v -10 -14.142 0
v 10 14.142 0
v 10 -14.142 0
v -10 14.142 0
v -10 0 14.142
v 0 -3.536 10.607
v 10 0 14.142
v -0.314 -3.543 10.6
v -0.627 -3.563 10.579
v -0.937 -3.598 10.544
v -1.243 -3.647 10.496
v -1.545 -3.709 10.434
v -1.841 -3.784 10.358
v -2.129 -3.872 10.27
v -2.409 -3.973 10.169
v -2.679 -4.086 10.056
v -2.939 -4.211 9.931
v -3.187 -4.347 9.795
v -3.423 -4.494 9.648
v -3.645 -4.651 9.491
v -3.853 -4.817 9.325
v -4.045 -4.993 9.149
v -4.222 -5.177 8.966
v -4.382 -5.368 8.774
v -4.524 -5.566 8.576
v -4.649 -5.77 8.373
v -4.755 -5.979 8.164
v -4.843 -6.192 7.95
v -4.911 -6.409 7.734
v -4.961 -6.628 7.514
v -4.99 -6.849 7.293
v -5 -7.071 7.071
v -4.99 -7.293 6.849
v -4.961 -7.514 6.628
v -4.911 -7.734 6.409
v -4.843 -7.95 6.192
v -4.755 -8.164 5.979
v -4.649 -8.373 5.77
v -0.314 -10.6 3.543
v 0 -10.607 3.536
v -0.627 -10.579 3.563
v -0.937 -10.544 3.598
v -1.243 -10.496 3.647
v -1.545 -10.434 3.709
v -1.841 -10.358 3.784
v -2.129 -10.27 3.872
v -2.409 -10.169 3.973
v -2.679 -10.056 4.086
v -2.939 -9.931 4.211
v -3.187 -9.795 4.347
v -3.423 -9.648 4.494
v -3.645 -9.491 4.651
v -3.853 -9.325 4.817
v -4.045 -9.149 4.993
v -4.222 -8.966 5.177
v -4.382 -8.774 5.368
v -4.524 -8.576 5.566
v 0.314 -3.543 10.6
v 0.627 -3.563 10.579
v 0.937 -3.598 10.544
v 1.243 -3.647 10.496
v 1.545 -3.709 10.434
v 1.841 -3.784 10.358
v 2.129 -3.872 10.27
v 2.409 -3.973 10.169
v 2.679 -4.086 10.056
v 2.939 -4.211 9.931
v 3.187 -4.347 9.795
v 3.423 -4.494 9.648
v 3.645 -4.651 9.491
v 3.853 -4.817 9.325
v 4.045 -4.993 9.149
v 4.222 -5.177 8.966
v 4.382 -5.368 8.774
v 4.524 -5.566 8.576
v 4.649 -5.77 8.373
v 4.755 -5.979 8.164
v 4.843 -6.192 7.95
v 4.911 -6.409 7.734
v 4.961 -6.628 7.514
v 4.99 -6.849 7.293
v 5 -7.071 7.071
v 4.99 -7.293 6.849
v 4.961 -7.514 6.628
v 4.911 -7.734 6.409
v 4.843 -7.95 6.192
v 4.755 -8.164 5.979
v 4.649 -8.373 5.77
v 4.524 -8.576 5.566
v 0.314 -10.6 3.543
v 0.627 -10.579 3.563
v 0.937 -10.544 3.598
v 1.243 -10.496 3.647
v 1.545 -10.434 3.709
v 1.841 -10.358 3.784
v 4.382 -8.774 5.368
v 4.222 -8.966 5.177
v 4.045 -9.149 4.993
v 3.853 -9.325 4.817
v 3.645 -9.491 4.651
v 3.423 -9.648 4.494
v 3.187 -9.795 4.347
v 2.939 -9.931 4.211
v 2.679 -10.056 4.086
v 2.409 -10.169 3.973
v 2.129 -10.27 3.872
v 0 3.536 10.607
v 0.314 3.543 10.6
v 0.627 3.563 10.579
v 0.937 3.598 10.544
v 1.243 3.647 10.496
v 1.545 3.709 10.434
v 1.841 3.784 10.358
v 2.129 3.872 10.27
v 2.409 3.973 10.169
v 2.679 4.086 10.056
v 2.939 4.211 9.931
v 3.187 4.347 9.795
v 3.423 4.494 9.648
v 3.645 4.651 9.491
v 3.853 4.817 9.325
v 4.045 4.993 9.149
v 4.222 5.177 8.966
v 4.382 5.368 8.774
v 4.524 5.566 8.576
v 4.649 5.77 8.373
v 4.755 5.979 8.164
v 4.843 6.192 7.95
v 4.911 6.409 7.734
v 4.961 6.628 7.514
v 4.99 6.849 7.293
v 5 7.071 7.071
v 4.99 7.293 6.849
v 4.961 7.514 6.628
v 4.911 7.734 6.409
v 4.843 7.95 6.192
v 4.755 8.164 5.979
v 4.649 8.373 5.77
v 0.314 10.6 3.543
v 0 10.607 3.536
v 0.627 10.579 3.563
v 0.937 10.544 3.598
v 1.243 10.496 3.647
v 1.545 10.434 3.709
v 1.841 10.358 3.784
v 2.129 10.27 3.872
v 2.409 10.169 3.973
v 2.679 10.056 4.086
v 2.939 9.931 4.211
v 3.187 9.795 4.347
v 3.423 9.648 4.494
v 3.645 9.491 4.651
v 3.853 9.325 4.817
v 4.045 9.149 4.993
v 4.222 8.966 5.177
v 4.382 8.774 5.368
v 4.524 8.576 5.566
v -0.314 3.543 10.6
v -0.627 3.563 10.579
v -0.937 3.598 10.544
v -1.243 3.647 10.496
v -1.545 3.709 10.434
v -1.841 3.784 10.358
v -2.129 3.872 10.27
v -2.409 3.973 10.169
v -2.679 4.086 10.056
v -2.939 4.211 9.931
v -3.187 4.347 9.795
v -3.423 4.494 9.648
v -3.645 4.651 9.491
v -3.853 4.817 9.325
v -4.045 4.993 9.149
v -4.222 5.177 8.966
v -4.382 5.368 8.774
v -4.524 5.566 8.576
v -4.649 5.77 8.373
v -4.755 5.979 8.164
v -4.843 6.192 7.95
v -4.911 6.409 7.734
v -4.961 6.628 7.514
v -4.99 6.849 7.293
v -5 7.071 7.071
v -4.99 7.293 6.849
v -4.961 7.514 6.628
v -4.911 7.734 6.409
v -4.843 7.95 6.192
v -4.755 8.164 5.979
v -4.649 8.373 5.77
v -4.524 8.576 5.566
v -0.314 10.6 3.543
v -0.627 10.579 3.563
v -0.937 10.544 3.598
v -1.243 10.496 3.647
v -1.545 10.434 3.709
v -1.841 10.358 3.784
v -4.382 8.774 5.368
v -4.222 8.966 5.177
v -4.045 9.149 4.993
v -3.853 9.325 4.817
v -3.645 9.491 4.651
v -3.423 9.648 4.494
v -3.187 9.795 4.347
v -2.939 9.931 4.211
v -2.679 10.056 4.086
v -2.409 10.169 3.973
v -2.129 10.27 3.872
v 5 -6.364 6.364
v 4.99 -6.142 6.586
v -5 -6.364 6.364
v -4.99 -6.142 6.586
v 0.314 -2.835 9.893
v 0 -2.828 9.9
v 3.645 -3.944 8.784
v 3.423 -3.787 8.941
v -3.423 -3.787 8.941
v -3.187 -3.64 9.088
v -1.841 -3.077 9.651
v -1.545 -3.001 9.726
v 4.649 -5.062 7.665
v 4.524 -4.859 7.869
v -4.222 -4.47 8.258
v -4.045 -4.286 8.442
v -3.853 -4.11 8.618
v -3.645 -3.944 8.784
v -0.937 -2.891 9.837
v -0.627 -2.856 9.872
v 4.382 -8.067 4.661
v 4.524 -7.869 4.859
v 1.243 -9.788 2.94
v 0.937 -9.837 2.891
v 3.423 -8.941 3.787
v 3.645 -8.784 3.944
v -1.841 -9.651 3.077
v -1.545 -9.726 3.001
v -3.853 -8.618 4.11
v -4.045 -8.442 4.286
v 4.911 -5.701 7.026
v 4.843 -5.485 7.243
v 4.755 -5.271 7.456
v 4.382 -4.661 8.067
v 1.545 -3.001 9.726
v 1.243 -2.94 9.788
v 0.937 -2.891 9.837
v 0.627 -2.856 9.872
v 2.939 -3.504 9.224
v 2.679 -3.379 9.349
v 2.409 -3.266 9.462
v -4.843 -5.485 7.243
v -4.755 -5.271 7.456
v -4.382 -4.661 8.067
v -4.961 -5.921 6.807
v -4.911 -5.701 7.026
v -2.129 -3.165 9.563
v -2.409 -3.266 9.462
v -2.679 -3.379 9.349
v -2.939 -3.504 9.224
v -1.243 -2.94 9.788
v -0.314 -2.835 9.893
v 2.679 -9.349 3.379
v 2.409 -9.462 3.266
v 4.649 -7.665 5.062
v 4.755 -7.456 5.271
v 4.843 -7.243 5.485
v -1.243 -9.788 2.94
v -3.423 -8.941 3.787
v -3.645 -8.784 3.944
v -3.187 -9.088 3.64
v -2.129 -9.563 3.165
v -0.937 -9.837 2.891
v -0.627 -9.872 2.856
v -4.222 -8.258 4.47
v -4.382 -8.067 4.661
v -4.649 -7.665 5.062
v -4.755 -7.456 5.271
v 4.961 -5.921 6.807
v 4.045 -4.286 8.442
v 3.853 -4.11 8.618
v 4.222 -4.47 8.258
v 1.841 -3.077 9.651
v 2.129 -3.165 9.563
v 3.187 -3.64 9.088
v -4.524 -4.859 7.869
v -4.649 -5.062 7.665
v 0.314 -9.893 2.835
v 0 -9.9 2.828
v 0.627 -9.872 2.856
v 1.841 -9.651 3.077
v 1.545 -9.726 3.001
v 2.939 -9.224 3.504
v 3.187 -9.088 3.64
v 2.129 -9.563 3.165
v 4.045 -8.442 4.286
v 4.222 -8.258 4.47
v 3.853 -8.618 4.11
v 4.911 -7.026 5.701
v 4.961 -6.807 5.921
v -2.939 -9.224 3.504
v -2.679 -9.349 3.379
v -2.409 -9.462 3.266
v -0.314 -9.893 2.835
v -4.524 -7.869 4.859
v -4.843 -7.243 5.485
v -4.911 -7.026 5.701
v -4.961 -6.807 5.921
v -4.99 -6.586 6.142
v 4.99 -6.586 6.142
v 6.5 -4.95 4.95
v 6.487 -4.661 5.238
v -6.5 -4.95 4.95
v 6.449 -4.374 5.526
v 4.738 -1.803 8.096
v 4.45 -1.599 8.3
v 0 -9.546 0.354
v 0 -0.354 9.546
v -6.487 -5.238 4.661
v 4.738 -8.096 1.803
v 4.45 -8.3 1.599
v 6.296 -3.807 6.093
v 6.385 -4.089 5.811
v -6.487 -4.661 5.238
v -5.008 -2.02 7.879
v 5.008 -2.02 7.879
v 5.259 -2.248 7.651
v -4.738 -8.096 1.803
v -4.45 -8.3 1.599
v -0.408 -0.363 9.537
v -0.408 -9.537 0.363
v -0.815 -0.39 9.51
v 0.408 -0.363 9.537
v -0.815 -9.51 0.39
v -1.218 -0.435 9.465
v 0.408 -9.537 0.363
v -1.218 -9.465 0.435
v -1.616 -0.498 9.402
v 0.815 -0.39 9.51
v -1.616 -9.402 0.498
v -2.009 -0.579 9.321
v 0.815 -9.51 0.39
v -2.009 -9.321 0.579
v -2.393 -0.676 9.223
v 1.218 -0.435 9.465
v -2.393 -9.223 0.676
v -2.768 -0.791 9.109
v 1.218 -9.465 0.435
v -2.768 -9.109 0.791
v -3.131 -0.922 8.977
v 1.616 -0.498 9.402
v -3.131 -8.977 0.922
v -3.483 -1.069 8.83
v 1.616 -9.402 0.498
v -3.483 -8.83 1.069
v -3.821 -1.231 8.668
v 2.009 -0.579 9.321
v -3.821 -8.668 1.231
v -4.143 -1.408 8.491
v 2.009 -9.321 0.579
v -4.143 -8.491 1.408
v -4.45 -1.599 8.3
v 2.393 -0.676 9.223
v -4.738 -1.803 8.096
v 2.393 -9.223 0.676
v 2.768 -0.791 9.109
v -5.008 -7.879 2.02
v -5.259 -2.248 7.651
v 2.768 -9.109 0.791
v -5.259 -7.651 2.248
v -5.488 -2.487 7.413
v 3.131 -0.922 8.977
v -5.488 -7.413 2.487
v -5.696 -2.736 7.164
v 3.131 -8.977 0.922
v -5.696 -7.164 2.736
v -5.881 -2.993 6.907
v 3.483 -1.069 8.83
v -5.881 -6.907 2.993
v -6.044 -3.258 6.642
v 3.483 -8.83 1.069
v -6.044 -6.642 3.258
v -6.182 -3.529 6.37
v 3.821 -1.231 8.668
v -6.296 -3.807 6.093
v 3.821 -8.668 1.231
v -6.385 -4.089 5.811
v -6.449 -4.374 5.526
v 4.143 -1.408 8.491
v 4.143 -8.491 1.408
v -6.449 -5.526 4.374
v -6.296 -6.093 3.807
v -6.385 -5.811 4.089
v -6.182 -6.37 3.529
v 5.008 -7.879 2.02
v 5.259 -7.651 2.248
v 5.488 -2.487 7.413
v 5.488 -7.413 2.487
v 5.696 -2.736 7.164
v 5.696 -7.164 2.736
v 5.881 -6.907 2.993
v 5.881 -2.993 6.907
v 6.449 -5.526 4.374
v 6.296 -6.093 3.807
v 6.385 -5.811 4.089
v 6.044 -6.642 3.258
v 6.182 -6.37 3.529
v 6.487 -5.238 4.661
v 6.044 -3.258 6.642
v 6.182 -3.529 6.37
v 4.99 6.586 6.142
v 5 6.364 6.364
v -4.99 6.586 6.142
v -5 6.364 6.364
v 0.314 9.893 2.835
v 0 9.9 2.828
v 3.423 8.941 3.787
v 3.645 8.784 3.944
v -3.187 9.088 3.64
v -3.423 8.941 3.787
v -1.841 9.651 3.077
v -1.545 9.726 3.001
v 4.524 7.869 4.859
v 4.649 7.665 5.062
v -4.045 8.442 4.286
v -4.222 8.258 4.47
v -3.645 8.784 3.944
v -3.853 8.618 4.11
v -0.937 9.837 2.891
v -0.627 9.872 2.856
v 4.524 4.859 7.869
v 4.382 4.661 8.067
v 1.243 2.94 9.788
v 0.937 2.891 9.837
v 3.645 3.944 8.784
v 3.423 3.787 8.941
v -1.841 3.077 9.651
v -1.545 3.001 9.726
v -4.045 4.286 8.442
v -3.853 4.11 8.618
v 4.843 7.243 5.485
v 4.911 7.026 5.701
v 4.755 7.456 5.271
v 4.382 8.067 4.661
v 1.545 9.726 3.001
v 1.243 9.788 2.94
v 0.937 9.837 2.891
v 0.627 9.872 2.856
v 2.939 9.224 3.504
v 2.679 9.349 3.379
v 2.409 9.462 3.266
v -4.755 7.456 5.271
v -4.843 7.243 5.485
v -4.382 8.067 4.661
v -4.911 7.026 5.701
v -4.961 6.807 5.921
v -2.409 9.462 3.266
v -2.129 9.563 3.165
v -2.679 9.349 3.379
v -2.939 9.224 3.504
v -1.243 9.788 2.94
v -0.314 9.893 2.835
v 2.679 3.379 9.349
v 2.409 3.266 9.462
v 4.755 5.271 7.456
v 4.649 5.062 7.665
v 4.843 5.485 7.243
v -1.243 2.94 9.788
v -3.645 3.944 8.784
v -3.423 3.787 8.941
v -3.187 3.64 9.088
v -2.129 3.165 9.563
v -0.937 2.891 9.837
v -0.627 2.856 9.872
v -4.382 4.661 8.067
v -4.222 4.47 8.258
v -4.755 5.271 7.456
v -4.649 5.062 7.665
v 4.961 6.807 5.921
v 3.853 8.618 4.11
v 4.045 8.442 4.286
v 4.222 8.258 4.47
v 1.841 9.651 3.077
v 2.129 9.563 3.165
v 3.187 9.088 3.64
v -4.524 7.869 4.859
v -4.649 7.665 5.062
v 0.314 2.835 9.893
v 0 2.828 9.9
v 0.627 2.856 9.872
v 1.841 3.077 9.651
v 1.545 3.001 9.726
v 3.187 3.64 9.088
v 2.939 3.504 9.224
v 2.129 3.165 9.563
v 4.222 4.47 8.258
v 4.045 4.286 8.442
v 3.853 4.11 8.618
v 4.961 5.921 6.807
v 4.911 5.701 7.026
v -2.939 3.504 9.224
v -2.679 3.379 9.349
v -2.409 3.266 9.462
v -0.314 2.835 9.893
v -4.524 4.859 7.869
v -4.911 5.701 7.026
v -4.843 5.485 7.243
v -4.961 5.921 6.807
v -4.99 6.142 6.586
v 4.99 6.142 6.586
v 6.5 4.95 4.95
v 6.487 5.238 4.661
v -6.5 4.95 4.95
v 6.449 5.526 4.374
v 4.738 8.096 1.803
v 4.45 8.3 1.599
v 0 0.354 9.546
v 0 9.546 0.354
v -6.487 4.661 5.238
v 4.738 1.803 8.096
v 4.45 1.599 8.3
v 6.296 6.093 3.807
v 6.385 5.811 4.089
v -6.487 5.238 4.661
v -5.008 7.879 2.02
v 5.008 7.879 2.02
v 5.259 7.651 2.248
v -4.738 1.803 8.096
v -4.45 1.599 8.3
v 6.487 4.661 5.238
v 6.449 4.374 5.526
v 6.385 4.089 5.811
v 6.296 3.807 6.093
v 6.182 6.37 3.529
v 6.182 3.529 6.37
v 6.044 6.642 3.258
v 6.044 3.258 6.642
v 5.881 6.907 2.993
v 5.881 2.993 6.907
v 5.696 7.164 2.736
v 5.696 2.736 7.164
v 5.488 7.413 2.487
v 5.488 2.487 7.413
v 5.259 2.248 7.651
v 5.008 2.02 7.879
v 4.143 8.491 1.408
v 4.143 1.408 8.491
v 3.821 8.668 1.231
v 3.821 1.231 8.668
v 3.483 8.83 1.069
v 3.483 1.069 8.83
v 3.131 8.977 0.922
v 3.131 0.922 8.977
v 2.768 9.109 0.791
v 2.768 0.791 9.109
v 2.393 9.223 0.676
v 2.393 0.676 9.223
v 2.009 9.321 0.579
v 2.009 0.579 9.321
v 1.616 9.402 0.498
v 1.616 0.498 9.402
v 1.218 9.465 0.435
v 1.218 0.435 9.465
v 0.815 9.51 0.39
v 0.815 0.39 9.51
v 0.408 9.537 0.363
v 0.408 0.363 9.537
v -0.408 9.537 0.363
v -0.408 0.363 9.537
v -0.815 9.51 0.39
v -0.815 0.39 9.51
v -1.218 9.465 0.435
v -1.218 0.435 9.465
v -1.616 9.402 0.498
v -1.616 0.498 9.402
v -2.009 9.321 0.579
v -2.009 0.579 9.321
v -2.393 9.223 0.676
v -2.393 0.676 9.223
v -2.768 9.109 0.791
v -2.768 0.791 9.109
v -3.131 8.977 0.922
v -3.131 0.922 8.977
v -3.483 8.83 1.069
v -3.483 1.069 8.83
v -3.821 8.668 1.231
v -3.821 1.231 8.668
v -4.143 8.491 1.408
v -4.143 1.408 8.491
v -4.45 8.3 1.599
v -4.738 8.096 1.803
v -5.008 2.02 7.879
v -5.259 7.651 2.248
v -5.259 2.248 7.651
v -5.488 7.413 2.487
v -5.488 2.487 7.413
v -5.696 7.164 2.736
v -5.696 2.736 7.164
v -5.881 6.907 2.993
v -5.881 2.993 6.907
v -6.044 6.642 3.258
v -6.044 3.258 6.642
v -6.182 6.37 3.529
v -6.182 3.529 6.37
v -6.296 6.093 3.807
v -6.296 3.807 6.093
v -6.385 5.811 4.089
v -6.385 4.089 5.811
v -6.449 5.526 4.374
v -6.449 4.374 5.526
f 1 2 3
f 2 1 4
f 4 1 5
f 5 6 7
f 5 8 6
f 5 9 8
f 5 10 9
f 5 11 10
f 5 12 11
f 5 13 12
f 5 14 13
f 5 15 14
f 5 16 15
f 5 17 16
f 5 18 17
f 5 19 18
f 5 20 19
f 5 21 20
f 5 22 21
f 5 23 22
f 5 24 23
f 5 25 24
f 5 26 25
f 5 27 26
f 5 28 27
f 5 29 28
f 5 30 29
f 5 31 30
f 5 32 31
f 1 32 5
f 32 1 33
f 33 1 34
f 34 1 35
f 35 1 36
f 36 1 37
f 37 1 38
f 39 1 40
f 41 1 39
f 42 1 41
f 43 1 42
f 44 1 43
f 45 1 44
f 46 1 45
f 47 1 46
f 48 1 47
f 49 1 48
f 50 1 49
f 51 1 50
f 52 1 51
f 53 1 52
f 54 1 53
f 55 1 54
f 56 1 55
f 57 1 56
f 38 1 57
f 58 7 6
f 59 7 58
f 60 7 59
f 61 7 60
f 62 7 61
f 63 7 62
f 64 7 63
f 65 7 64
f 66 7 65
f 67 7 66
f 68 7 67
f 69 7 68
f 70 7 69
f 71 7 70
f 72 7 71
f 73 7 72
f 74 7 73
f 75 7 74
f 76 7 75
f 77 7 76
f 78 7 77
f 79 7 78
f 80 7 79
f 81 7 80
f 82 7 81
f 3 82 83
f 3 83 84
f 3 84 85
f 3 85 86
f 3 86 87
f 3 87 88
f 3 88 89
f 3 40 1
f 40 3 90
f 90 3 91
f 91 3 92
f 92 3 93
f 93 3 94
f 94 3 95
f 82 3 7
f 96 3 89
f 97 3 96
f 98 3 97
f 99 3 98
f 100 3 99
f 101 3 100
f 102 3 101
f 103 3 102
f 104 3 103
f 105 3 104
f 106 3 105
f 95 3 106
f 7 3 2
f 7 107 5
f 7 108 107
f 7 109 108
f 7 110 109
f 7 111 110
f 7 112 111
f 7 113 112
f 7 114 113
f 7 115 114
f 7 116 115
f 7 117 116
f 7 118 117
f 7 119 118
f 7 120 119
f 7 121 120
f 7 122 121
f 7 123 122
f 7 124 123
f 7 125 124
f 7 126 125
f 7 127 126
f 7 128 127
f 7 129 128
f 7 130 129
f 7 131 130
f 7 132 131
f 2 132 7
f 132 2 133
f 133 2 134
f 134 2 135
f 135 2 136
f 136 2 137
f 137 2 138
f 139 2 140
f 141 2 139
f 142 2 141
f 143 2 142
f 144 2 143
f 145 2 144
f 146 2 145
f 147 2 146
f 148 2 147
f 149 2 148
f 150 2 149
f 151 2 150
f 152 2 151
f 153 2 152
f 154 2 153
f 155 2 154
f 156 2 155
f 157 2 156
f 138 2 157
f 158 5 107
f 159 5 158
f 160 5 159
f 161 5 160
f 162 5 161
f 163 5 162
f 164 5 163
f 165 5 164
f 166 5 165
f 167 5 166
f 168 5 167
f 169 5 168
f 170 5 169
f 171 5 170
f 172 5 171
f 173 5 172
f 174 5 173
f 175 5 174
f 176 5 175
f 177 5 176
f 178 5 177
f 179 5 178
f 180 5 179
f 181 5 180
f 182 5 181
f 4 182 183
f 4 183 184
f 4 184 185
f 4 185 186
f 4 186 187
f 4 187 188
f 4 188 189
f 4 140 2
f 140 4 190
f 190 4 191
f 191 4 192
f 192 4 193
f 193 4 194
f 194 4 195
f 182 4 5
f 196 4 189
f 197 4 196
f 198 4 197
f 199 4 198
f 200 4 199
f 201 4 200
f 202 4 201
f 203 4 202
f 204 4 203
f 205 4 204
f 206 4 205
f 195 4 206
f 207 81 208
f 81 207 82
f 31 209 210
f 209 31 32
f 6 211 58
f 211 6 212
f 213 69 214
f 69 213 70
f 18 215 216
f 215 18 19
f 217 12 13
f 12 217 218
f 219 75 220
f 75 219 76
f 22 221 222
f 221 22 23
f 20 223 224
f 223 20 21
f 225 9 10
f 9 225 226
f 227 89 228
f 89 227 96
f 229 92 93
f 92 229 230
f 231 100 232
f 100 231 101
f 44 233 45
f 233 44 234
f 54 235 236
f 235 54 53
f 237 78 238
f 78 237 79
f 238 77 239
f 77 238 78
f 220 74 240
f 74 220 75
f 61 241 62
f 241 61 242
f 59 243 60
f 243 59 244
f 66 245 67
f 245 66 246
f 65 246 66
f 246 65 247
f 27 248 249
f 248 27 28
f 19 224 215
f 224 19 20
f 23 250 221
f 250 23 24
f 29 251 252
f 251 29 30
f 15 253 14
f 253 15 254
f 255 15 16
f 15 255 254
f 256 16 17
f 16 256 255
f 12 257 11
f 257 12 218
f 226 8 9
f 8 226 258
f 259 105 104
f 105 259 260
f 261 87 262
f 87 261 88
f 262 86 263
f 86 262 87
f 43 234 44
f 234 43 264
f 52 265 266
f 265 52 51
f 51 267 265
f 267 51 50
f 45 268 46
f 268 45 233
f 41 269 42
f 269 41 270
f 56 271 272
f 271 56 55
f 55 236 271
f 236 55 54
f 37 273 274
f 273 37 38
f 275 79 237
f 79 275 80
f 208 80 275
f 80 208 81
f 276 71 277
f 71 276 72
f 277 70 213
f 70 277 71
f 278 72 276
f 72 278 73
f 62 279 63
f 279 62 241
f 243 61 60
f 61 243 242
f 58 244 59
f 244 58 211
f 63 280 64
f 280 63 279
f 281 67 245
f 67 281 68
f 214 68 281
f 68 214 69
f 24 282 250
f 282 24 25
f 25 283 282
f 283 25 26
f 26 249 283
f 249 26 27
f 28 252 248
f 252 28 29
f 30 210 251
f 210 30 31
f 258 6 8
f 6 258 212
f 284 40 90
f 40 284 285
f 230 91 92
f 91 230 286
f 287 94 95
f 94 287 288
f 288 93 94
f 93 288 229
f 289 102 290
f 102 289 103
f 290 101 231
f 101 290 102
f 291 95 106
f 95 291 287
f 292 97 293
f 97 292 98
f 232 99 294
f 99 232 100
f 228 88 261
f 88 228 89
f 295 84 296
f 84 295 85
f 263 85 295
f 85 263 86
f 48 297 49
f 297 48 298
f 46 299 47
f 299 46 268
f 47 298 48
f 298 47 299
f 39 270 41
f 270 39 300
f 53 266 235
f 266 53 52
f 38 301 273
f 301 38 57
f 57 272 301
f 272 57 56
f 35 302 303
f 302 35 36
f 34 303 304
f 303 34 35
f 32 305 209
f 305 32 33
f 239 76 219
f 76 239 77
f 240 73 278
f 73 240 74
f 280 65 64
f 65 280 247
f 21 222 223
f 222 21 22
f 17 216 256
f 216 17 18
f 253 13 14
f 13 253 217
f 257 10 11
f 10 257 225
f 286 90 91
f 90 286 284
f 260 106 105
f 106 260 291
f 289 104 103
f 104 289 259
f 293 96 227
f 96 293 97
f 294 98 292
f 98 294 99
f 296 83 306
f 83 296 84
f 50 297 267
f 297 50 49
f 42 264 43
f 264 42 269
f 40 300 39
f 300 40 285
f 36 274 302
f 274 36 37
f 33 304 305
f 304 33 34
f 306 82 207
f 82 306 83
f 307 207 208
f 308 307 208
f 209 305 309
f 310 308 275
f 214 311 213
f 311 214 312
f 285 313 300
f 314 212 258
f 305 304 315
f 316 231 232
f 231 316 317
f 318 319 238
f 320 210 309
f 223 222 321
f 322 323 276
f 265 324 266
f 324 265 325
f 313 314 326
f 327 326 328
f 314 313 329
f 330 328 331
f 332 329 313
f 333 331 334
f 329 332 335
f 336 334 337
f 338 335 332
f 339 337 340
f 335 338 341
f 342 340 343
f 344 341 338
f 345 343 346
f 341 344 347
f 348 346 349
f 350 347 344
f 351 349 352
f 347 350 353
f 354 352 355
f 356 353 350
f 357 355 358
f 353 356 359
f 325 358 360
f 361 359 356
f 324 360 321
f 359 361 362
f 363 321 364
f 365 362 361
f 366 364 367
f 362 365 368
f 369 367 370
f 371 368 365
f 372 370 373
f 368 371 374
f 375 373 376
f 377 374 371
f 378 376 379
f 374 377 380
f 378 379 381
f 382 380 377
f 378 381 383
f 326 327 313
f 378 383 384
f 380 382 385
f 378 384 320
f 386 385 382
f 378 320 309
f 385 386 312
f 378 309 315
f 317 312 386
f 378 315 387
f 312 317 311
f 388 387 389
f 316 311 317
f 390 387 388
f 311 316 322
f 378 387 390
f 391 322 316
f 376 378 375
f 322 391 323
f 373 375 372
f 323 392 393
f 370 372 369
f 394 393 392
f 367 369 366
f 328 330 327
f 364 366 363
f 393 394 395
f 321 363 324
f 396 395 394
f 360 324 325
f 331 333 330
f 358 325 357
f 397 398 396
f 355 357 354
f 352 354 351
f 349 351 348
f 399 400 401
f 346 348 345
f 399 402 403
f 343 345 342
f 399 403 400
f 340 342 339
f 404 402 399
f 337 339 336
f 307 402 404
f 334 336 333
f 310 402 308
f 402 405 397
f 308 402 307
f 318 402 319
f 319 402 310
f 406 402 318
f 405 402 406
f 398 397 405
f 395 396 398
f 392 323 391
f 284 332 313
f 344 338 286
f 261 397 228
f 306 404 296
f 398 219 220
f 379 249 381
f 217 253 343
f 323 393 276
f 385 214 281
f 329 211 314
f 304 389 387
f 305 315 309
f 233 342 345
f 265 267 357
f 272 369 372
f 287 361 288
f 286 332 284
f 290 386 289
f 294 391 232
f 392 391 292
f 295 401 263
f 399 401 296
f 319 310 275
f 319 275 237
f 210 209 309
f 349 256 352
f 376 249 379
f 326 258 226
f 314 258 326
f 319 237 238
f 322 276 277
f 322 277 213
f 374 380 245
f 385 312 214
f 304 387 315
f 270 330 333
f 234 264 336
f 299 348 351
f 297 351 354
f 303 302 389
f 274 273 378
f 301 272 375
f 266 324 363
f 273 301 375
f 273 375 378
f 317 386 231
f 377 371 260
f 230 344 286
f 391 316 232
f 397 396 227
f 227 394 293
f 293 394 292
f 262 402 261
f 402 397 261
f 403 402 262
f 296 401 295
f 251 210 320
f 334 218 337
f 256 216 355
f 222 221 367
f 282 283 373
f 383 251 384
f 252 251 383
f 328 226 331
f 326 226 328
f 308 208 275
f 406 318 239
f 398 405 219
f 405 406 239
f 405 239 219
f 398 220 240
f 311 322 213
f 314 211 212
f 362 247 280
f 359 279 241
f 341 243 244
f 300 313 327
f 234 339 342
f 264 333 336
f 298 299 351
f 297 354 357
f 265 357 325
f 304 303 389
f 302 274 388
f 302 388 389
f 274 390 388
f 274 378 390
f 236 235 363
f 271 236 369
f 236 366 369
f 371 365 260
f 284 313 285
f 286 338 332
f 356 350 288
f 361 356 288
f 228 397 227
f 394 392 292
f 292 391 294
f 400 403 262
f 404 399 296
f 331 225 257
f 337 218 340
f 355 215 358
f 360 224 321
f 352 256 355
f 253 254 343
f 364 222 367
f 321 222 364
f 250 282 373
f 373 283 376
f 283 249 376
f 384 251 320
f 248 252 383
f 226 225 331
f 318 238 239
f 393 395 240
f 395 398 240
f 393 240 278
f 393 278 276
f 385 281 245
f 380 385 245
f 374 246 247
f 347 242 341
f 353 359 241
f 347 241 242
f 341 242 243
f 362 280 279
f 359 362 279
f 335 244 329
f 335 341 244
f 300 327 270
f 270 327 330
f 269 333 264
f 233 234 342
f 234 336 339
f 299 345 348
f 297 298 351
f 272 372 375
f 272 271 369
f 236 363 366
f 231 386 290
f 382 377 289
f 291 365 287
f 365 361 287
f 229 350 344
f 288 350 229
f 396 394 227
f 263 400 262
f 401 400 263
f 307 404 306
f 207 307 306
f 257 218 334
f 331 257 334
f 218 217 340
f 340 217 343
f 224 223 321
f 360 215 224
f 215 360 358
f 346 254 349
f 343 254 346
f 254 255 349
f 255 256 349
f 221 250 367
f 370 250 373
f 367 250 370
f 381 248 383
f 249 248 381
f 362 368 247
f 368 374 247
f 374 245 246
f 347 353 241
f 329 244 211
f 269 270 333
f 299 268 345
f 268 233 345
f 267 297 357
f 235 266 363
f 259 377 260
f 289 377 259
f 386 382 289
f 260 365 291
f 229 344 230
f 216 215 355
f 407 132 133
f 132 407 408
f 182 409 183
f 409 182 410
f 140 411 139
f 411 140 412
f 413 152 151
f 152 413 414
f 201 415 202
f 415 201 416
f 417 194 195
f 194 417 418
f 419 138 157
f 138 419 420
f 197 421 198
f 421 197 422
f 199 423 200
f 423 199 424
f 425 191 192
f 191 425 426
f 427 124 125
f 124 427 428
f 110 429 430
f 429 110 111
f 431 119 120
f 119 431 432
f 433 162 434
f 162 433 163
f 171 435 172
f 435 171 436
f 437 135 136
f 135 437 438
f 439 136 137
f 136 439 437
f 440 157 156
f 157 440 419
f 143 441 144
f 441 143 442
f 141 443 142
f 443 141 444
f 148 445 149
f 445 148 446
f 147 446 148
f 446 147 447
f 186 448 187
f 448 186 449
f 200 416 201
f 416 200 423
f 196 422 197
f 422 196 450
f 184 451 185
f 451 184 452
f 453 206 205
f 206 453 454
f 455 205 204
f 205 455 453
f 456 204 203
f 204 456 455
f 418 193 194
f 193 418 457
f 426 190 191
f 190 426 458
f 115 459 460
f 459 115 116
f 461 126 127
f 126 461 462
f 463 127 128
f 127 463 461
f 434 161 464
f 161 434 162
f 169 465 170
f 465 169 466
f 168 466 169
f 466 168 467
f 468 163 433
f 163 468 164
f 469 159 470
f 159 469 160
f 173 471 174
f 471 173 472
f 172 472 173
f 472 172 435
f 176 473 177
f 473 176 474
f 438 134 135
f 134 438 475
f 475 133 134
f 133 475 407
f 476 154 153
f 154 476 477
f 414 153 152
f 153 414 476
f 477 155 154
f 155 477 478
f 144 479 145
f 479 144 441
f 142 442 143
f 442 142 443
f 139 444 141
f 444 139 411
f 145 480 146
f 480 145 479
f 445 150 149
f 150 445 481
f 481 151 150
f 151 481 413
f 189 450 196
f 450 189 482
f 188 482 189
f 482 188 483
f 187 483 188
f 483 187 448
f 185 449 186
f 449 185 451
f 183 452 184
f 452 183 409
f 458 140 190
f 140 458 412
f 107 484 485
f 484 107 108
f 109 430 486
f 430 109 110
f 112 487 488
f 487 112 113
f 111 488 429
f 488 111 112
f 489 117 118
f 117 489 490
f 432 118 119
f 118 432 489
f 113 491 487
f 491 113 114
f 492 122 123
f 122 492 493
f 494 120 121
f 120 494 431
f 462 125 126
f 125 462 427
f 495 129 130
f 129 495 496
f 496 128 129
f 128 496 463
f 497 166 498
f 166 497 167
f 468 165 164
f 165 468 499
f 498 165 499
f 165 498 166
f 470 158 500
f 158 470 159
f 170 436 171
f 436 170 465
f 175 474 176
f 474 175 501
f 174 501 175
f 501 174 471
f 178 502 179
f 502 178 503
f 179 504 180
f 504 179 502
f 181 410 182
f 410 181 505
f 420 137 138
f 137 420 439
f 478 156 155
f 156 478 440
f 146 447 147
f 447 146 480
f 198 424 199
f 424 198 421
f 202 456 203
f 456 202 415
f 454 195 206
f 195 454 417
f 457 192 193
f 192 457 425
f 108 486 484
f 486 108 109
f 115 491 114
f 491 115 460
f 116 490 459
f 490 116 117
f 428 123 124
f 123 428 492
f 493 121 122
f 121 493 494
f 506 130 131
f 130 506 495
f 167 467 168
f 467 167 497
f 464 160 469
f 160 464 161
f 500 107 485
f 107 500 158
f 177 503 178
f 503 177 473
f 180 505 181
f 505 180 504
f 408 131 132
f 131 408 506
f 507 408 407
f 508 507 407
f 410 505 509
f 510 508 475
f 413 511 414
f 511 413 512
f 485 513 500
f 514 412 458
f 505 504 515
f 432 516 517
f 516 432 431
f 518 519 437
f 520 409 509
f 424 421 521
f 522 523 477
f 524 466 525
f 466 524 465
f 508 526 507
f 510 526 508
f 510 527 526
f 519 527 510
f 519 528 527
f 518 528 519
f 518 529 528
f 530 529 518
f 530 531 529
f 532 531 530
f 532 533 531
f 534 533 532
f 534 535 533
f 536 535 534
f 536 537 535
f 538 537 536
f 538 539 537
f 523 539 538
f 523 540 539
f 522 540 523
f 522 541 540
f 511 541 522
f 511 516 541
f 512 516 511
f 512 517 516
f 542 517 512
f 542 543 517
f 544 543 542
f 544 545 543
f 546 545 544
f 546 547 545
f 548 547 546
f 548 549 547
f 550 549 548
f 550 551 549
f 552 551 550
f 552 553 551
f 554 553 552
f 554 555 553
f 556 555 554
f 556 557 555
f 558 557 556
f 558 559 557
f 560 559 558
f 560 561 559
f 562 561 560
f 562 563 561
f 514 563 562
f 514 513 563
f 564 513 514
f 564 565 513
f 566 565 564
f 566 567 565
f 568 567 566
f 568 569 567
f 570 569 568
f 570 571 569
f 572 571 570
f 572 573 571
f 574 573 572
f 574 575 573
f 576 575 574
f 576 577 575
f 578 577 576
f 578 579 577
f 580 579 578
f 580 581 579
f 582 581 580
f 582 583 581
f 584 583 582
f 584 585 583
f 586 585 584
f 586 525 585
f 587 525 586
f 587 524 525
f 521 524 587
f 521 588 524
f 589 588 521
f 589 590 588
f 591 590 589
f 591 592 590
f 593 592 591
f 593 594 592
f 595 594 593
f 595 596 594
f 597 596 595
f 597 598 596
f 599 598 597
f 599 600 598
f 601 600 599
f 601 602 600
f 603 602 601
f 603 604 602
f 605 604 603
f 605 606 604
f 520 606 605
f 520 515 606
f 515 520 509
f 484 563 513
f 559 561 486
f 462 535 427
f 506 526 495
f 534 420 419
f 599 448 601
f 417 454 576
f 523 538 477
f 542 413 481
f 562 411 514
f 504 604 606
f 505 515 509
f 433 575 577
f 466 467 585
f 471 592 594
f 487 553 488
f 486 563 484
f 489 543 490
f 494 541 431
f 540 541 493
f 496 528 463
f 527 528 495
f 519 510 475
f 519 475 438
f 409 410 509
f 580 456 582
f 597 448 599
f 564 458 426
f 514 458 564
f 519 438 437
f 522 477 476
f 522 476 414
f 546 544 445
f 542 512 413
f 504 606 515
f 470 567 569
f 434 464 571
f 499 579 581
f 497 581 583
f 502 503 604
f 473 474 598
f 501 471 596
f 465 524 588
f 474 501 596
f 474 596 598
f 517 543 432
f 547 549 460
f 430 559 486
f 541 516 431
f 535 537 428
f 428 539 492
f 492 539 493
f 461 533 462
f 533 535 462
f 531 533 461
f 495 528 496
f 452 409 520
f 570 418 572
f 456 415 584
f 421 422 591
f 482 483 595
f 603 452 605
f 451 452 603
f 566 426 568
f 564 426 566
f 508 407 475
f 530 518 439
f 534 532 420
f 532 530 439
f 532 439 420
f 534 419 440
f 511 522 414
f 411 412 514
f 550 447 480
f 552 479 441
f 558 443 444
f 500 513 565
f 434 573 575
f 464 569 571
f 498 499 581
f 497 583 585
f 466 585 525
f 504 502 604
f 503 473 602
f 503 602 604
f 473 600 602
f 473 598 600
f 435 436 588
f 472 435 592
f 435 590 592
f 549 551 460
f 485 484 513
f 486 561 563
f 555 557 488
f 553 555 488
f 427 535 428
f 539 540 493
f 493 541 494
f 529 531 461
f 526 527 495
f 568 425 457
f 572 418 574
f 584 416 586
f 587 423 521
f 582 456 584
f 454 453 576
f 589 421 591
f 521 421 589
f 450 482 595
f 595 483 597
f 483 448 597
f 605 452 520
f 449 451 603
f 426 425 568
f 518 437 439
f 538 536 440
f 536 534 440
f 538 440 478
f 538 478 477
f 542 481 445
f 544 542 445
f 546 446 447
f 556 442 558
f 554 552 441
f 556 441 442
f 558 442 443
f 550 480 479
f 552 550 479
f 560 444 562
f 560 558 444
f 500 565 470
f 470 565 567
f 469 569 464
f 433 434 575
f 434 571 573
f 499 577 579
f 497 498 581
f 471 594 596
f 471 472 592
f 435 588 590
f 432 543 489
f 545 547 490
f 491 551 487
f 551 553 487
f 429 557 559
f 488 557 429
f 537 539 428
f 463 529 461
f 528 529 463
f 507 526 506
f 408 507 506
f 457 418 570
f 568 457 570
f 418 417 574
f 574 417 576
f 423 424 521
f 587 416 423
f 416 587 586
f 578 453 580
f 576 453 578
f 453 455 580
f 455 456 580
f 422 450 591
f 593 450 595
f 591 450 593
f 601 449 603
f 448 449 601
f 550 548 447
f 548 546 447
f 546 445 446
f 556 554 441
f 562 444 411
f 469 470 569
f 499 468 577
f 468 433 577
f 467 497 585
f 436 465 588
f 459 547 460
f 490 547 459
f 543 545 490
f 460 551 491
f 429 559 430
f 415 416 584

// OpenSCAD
size = 20;

$fn = 100;


h = 5;
r1 = 5.2;
r2 = 3.2;

module pyramid(size){
    intersection() {
        translate([0,0, size])
            cube([size*2, size*2, size*2], center=true);
        rotate([45, 0, 0])
            cube([size, size, size], center=true);
    }
}

module snake_figure(){
    difference()
    {
        pyramid(size);
        rotate([45,0,0])
        translate([0,0,18]) {
            cylinder(r=5, h=size, center=true);
            translate([0,0, -10])
                cylinder(r1=6.5, r2=5, h=2, center=true);
        }
        rotate([-45,0,0])
        translate([0,0,18]) {
            cylinder(r=5, h=size, center=true);
            translate([0,0, -10])
                cylinder(r1=6.5, r2=5, h=2, center=true);
        }
    }
}

snake_figure();
